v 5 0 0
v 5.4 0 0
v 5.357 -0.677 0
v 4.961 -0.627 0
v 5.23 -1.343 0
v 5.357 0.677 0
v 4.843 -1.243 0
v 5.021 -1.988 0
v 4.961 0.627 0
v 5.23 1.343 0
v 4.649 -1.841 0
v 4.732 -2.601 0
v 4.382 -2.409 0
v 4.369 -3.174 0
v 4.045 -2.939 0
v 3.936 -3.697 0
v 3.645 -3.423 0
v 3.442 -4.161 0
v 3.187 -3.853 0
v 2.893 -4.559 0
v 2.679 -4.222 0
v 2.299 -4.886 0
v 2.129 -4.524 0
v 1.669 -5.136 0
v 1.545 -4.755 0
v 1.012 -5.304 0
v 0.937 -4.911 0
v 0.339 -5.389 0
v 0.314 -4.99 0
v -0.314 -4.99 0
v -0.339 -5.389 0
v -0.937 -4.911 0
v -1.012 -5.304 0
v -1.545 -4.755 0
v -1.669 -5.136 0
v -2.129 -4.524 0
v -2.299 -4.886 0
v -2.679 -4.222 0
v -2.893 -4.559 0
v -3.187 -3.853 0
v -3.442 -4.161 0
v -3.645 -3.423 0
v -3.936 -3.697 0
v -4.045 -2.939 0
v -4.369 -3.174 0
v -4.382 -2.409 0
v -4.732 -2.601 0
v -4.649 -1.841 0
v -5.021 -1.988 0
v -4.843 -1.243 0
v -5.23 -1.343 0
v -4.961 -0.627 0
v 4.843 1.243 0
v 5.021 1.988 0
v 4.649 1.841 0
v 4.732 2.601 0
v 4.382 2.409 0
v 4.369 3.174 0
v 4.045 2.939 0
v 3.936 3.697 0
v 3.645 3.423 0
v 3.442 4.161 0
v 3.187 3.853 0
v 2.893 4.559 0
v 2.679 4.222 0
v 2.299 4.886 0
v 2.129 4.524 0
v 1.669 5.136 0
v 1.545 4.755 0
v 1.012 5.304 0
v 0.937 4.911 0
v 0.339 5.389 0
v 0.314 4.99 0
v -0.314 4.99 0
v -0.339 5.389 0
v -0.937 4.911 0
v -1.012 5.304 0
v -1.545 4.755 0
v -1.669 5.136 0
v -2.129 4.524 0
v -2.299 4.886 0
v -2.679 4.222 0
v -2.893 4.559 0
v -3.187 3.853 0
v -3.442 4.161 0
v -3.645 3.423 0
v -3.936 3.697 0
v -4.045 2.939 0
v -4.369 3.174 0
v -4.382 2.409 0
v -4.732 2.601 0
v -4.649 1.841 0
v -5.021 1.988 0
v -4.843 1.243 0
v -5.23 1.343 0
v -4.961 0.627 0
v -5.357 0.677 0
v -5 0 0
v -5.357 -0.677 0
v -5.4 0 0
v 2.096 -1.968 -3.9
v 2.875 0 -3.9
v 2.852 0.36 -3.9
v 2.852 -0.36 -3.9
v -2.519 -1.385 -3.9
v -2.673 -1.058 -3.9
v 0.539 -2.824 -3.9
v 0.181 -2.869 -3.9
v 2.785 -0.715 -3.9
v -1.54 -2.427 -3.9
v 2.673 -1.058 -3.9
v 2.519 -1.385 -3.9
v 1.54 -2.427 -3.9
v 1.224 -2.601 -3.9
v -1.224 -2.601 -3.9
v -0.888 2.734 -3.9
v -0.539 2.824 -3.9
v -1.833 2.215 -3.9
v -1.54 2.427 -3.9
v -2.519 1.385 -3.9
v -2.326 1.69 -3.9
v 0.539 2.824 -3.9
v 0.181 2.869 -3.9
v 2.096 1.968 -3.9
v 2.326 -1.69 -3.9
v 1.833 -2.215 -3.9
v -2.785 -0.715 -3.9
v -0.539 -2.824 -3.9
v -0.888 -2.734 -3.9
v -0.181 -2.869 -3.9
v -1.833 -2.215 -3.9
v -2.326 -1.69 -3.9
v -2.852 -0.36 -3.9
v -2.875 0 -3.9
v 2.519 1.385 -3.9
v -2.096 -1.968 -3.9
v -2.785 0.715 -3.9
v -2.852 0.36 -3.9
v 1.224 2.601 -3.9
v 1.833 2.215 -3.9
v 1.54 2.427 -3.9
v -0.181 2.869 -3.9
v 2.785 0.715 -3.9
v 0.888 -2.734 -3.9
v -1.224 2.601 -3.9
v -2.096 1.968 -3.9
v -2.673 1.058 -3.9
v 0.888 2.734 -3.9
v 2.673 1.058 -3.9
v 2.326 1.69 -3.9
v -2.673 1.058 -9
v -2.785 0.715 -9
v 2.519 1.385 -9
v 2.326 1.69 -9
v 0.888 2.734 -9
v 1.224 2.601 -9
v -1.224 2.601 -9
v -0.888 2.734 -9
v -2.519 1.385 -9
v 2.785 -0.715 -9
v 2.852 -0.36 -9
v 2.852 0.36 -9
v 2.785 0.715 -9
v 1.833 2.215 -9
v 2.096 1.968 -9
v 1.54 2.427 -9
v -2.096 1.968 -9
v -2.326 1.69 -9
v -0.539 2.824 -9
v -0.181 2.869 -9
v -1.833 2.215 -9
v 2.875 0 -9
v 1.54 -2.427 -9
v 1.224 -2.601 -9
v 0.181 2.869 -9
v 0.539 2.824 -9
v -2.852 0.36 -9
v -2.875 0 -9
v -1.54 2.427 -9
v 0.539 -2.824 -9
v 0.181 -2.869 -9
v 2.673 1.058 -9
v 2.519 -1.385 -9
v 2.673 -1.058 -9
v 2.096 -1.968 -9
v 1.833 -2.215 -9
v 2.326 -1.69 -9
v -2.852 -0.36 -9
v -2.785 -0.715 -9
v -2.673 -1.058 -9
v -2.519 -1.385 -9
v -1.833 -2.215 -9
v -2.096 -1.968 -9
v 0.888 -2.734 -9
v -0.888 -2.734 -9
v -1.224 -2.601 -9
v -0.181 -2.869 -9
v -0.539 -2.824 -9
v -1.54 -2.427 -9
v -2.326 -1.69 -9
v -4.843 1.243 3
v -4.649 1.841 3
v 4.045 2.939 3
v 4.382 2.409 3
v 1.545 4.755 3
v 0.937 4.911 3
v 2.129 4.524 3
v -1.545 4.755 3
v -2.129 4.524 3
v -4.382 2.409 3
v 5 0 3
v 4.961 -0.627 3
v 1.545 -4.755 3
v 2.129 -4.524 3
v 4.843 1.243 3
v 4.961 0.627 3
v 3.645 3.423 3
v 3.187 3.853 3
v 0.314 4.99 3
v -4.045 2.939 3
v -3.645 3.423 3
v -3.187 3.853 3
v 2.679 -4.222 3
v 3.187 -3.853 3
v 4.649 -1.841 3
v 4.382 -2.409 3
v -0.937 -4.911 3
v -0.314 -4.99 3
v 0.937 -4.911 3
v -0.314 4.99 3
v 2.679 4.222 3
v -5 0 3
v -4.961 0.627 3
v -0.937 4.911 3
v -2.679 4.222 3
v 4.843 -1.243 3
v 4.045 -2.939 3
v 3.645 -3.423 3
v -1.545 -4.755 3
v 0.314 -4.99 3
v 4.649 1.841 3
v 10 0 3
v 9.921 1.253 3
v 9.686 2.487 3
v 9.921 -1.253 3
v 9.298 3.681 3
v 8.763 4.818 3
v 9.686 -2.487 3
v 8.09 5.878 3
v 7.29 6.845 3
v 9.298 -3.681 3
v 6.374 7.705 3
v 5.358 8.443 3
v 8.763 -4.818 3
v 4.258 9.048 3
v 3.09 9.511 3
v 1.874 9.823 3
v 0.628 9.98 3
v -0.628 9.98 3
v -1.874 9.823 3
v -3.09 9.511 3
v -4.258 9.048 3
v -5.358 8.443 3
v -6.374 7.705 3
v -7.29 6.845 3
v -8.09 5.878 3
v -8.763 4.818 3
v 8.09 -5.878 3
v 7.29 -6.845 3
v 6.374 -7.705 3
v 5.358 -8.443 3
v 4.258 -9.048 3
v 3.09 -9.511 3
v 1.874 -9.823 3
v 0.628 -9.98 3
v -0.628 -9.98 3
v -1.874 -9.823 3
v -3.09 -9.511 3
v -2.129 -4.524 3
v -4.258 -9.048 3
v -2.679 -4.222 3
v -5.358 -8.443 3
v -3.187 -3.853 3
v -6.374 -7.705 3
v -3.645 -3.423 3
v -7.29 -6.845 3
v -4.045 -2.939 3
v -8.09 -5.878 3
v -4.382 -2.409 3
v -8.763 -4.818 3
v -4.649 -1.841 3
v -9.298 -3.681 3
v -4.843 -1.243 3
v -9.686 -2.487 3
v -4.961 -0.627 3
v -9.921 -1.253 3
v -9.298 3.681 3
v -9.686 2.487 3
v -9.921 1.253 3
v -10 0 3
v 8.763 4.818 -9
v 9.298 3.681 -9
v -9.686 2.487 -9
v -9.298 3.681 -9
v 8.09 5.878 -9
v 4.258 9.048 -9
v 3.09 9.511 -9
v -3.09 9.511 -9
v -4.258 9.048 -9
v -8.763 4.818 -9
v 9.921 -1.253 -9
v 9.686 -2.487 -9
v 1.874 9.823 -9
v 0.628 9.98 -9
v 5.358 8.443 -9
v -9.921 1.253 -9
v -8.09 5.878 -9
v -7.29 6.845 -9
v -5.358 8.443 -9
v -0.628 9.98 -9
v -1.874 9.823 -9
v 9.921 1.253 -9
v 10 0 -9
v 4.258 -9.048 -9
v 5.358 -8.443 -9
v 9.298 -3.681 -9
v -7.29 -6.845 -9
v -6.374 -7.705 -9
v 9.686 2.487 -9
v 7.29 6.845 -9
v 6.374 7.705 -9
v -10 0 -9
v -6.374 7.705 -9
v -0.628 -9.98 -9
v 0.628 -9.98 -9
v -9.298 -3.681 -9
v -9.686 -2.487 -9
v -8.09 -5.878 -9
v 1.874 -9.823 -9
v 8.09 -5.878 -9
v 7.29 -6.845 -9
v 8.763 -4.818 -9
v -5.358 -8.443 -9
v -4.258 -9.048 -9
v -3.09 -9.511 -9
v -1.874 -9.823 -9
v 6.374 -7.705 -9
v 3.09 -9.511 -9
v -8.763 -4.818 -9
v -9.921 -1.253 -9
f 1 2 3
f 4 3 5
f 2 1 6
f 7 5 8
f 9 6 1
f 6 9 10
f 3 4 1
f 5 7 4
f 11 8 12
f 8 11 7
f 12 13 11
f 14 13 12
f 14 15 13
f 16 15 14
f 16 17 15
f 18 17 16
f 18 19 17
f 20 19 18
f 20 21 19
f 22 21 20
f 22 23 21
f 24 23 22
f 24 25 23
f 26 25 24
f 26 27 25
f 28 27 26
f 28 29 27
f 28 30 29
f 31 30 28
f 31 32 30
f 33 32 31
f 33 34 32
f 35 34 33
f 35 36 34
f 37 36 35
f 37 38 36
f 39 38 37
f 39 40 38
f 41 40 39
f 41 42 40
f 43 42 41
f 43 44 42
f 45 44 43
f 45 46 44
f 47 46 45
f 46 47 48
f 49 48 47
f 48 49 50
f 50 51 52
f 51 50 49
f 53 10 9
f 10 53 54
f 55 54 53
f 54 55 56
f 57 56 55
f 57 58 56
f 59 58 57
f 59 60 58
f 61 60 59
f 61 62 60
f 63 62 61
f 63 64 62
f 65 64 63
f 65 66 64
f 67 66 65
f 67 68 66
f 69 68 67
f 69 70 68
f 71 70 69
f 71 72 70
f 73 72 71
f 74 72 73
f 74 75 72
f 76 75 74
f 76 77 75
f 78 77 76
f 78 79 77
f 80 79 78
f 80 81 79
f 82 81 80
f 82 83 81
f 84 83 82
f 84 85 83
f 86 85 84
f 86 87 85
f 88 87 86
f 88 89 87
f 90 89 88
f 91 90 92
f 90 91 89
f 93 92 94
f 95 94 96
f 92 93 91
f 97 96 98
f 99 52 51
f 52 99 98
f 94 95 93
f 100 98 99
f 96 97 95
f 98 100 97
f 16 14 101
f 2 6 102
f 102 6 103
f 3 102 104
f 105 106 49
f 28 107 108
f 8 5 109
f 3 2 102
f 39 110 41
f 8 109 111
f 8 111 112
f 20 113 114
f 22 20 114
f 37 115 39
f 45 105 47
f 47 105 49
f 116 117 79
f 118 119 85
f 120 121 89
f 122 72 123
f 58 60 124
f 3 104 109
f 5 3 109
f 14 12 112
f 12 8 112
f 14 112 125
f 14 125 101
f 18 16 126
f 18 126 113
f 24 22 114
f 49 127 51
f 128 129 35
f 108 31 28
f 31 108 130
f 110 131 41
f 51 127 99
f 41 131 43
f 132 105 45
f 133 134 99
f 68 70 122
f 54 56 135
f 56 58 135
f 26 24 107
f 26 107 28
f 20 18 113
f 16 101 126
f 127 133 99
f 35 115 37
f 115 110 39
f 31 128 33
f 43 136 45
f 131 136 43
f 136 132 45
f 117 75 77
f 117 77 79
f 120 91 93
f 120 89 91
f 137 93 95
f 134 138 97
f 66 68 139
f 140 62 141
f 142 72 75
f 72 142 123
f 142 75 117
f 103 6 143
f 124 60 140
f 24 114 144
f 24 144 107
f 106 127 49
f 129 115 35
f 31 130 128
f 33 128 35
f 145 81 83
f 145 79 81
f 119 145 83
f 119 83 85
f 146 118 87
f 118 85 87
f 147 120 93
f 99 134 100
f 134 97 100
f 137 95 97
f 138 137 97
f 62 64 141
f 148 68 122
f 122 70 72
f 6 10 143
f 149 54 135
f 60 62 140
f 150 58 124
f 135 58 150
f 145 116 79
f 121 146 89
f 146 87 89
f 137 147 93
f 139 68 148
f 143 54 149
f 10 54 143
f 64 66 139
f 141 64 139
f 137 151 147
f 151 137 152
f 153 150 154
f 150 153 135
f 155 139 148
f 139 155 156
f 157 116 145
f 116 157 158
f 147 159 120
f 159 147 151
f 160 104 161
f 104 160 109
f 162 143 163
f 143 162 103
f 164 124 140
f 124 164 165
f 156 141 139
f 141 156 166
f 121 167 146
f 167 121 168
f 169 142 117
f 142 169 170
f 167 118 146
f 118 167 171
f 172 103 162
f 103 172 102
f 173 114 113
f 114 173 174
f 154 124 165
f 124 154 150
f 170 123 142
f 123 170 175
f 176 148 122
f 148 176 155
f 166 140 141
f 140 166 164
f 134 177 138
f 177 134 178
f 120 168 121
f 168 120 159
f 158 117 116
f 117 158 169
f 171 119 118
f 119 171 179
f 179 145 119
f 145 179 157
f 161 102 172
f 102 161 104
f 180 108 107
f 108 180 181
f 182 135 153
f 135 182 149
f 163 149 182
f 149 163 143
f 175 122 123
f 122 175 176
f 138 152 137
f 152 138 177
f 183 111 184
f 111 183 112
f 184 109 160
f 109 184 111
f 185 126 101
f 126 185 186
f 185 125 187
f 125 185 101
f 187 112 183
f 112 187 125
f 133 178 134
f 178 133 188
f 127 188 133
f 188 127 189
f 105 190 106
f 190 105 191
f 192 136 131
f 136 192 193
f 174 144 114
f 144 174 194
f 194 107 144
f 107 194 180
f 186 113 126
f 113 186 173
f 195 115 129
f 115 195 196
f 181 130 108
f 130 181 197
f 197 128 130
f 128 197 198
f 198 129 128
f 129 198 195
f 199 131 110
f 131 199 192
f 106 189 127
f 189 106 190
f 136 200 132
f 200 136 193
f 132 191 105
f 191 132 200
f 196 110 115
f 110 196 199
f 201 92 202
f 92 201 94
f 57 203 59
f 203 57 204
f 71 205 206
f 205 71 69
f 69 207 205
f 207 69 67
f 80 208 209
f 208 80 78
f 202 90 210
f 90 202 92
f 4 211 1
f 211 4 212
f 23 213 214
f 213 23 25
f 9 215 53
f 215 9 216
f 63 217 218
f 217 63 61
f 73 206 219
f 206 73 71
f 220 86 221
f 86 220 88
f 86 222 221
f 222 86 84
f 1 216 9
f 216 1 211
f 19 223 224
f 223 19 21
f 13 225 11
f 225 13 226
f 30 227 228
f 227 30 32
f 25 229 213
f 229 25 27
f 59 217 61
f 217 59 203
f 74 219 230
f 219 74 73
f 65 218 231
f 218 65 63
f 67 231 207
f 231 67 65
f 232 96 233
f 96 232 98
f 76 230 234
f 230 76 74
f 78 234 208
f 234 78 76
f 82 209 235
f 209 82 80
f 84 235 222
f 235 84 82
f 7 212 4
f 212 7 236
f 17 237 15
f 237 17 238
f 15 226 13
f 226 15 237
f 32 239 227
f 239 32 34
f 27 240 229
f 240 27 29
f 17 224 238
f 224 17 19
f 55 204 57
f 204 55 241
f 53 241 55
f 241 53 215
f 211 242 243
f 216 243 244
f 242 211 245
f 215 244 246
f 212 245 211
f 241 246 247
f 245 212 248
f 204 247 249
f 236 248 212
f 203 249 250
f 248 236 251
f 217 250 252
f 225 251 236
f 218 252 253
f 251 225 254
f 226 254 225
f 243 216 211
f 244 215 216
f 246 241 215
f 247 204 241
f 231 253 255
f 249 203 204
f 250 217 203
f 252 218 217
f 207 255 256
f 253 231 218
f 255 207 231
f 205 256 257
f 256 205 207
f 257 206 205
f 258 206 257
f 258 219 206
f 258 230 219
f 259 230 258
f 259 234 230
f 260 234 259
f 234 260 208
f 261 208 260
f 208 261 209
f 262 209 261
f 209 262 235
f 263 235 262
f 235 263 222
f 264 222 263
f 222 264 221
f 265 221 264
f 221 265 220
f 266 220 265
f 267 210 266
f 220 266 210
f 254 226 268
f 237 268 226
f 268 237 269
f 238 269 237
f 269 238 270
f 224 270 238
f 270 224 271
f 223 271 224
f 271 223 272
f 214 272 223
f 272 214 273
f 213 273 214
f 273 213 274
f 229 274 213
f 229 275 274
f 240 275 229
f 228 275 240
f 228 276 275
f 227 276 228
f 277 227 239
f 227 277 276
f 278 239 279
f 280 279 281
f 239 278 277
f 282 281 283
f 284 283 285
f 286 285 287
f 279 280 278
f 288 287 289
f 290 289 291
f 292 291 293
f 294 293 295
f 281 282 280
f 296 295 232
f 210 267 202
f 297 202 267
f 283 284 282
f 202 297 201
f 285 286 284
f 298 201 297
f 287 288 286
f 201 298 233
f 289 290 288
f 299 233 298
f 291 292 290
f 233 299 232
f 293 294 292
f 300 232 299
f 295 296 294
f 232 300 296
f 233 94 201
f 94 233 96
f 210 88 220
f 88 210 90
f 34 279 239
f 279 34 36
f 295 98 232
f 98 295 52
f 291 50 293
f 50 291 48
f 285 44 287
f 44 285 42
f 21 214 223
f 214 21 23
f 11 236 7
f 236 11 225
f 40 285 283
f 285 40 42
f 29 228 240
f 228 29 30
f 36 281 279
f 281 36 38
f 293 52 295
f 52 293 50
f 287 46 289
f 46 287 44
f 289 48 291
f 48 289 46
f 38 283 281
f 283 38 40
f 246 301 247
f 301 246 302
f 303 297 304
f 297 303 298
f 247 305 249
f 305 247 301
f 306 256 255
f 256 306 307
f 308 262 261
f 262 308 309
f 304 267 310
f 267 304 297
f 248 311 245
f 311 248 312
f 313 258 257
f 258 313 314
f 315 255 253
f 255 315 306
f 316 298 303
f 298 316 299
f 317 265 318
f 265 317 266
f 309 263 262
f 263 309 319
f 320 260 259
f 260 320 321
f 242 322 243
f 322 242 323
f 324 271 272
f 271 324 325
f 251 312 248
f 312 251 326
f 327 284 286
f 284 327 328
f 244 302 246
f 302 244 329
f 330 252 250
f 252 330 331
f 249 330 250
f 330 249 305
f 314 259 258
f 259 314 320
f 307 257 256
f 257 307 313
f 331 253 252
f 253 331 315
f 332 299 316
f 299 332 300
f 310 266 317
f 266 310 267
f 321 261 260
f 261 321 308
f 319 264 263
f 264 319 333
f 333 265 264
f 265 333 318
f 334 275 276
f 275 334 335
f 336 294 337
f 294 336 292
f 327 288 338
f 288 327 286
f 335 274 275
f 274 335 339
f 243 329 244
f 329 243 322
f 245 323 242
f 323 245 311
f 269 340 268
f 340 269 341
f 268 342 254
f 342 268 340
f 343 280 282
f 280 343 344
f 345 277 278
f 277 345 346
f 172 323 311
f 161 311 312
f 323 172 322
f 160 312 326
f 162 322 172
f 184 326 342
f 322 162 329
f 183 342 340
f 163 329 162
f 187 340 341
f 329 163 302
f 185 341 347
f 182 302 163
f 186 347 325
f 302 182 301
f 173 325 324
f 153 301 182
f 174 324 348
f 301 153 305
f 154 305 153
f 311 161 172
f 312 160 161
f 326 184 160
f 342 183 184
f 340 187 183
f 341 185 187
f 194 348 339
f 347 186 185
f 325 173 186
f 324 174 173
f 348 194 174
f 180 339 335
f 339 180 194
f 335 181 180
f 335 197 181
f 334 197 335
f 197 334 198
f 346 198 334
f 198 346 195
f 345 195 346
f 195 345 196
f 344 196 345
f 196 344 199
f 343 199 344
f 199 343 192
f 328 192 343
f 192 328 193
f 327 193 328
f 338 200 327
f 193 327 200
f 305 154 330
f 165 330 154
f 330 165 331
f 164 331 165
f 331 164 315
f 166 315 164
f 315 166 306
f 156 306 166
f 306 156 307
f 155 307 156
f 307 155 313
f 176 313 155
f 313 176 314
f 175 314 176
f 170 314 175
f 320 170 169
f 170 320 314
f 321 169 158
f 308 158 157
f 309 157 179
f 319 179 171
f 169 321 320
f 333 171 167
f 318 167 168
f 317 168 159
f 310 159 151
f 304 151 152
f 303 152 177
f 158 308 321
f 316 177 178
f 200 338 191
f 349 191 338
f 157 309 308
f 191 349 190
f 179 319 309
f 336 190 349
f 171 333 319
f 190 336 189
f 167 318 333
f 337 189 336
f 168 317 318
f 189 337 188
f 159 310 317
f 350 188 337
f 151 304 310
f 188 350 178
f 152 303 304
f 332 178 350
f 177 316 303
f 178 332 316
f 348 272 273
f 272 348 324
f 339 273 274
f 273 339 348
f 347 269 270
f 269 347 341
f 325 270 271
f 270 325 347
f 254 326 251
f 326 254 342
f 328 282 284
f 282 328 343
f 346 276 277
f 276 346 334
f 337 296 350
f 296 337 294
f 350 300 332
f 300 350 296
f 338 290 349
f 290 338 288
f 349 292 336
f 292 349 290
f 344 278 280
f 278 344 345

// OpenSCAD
$fn = 50;

difference() {
	union() {
		translate(v = [0, 0, -9.0]) {
			cylinder(h = 12, r = 10.0);
		}
	}
	union() {
		translate(v = [0, 0, 0]) {
			rotate(a = [0, 0, 0]) {
				difference() {
					union() {
						translate(v = [0, 0, -12.0]) {
							cylinder(h = 12, r = 2.6);
						}
						translate(v = [0, 0, -3.9]) {
							cylinder(h = 3.9, r1 = 2.875, r2 = 5.4);
						}
						translate(v = [0, 0, -12.0]) {
							cylinder(h = 12, r = 2.875);
						}
						translate(v = [0, 0, -12.0]) {
							cylinder(h = 12, r = 2.6);
						}
					}
					union();
				}
			}
		}
		#cylinder(h = 3, r = 5.0);
	}
}
